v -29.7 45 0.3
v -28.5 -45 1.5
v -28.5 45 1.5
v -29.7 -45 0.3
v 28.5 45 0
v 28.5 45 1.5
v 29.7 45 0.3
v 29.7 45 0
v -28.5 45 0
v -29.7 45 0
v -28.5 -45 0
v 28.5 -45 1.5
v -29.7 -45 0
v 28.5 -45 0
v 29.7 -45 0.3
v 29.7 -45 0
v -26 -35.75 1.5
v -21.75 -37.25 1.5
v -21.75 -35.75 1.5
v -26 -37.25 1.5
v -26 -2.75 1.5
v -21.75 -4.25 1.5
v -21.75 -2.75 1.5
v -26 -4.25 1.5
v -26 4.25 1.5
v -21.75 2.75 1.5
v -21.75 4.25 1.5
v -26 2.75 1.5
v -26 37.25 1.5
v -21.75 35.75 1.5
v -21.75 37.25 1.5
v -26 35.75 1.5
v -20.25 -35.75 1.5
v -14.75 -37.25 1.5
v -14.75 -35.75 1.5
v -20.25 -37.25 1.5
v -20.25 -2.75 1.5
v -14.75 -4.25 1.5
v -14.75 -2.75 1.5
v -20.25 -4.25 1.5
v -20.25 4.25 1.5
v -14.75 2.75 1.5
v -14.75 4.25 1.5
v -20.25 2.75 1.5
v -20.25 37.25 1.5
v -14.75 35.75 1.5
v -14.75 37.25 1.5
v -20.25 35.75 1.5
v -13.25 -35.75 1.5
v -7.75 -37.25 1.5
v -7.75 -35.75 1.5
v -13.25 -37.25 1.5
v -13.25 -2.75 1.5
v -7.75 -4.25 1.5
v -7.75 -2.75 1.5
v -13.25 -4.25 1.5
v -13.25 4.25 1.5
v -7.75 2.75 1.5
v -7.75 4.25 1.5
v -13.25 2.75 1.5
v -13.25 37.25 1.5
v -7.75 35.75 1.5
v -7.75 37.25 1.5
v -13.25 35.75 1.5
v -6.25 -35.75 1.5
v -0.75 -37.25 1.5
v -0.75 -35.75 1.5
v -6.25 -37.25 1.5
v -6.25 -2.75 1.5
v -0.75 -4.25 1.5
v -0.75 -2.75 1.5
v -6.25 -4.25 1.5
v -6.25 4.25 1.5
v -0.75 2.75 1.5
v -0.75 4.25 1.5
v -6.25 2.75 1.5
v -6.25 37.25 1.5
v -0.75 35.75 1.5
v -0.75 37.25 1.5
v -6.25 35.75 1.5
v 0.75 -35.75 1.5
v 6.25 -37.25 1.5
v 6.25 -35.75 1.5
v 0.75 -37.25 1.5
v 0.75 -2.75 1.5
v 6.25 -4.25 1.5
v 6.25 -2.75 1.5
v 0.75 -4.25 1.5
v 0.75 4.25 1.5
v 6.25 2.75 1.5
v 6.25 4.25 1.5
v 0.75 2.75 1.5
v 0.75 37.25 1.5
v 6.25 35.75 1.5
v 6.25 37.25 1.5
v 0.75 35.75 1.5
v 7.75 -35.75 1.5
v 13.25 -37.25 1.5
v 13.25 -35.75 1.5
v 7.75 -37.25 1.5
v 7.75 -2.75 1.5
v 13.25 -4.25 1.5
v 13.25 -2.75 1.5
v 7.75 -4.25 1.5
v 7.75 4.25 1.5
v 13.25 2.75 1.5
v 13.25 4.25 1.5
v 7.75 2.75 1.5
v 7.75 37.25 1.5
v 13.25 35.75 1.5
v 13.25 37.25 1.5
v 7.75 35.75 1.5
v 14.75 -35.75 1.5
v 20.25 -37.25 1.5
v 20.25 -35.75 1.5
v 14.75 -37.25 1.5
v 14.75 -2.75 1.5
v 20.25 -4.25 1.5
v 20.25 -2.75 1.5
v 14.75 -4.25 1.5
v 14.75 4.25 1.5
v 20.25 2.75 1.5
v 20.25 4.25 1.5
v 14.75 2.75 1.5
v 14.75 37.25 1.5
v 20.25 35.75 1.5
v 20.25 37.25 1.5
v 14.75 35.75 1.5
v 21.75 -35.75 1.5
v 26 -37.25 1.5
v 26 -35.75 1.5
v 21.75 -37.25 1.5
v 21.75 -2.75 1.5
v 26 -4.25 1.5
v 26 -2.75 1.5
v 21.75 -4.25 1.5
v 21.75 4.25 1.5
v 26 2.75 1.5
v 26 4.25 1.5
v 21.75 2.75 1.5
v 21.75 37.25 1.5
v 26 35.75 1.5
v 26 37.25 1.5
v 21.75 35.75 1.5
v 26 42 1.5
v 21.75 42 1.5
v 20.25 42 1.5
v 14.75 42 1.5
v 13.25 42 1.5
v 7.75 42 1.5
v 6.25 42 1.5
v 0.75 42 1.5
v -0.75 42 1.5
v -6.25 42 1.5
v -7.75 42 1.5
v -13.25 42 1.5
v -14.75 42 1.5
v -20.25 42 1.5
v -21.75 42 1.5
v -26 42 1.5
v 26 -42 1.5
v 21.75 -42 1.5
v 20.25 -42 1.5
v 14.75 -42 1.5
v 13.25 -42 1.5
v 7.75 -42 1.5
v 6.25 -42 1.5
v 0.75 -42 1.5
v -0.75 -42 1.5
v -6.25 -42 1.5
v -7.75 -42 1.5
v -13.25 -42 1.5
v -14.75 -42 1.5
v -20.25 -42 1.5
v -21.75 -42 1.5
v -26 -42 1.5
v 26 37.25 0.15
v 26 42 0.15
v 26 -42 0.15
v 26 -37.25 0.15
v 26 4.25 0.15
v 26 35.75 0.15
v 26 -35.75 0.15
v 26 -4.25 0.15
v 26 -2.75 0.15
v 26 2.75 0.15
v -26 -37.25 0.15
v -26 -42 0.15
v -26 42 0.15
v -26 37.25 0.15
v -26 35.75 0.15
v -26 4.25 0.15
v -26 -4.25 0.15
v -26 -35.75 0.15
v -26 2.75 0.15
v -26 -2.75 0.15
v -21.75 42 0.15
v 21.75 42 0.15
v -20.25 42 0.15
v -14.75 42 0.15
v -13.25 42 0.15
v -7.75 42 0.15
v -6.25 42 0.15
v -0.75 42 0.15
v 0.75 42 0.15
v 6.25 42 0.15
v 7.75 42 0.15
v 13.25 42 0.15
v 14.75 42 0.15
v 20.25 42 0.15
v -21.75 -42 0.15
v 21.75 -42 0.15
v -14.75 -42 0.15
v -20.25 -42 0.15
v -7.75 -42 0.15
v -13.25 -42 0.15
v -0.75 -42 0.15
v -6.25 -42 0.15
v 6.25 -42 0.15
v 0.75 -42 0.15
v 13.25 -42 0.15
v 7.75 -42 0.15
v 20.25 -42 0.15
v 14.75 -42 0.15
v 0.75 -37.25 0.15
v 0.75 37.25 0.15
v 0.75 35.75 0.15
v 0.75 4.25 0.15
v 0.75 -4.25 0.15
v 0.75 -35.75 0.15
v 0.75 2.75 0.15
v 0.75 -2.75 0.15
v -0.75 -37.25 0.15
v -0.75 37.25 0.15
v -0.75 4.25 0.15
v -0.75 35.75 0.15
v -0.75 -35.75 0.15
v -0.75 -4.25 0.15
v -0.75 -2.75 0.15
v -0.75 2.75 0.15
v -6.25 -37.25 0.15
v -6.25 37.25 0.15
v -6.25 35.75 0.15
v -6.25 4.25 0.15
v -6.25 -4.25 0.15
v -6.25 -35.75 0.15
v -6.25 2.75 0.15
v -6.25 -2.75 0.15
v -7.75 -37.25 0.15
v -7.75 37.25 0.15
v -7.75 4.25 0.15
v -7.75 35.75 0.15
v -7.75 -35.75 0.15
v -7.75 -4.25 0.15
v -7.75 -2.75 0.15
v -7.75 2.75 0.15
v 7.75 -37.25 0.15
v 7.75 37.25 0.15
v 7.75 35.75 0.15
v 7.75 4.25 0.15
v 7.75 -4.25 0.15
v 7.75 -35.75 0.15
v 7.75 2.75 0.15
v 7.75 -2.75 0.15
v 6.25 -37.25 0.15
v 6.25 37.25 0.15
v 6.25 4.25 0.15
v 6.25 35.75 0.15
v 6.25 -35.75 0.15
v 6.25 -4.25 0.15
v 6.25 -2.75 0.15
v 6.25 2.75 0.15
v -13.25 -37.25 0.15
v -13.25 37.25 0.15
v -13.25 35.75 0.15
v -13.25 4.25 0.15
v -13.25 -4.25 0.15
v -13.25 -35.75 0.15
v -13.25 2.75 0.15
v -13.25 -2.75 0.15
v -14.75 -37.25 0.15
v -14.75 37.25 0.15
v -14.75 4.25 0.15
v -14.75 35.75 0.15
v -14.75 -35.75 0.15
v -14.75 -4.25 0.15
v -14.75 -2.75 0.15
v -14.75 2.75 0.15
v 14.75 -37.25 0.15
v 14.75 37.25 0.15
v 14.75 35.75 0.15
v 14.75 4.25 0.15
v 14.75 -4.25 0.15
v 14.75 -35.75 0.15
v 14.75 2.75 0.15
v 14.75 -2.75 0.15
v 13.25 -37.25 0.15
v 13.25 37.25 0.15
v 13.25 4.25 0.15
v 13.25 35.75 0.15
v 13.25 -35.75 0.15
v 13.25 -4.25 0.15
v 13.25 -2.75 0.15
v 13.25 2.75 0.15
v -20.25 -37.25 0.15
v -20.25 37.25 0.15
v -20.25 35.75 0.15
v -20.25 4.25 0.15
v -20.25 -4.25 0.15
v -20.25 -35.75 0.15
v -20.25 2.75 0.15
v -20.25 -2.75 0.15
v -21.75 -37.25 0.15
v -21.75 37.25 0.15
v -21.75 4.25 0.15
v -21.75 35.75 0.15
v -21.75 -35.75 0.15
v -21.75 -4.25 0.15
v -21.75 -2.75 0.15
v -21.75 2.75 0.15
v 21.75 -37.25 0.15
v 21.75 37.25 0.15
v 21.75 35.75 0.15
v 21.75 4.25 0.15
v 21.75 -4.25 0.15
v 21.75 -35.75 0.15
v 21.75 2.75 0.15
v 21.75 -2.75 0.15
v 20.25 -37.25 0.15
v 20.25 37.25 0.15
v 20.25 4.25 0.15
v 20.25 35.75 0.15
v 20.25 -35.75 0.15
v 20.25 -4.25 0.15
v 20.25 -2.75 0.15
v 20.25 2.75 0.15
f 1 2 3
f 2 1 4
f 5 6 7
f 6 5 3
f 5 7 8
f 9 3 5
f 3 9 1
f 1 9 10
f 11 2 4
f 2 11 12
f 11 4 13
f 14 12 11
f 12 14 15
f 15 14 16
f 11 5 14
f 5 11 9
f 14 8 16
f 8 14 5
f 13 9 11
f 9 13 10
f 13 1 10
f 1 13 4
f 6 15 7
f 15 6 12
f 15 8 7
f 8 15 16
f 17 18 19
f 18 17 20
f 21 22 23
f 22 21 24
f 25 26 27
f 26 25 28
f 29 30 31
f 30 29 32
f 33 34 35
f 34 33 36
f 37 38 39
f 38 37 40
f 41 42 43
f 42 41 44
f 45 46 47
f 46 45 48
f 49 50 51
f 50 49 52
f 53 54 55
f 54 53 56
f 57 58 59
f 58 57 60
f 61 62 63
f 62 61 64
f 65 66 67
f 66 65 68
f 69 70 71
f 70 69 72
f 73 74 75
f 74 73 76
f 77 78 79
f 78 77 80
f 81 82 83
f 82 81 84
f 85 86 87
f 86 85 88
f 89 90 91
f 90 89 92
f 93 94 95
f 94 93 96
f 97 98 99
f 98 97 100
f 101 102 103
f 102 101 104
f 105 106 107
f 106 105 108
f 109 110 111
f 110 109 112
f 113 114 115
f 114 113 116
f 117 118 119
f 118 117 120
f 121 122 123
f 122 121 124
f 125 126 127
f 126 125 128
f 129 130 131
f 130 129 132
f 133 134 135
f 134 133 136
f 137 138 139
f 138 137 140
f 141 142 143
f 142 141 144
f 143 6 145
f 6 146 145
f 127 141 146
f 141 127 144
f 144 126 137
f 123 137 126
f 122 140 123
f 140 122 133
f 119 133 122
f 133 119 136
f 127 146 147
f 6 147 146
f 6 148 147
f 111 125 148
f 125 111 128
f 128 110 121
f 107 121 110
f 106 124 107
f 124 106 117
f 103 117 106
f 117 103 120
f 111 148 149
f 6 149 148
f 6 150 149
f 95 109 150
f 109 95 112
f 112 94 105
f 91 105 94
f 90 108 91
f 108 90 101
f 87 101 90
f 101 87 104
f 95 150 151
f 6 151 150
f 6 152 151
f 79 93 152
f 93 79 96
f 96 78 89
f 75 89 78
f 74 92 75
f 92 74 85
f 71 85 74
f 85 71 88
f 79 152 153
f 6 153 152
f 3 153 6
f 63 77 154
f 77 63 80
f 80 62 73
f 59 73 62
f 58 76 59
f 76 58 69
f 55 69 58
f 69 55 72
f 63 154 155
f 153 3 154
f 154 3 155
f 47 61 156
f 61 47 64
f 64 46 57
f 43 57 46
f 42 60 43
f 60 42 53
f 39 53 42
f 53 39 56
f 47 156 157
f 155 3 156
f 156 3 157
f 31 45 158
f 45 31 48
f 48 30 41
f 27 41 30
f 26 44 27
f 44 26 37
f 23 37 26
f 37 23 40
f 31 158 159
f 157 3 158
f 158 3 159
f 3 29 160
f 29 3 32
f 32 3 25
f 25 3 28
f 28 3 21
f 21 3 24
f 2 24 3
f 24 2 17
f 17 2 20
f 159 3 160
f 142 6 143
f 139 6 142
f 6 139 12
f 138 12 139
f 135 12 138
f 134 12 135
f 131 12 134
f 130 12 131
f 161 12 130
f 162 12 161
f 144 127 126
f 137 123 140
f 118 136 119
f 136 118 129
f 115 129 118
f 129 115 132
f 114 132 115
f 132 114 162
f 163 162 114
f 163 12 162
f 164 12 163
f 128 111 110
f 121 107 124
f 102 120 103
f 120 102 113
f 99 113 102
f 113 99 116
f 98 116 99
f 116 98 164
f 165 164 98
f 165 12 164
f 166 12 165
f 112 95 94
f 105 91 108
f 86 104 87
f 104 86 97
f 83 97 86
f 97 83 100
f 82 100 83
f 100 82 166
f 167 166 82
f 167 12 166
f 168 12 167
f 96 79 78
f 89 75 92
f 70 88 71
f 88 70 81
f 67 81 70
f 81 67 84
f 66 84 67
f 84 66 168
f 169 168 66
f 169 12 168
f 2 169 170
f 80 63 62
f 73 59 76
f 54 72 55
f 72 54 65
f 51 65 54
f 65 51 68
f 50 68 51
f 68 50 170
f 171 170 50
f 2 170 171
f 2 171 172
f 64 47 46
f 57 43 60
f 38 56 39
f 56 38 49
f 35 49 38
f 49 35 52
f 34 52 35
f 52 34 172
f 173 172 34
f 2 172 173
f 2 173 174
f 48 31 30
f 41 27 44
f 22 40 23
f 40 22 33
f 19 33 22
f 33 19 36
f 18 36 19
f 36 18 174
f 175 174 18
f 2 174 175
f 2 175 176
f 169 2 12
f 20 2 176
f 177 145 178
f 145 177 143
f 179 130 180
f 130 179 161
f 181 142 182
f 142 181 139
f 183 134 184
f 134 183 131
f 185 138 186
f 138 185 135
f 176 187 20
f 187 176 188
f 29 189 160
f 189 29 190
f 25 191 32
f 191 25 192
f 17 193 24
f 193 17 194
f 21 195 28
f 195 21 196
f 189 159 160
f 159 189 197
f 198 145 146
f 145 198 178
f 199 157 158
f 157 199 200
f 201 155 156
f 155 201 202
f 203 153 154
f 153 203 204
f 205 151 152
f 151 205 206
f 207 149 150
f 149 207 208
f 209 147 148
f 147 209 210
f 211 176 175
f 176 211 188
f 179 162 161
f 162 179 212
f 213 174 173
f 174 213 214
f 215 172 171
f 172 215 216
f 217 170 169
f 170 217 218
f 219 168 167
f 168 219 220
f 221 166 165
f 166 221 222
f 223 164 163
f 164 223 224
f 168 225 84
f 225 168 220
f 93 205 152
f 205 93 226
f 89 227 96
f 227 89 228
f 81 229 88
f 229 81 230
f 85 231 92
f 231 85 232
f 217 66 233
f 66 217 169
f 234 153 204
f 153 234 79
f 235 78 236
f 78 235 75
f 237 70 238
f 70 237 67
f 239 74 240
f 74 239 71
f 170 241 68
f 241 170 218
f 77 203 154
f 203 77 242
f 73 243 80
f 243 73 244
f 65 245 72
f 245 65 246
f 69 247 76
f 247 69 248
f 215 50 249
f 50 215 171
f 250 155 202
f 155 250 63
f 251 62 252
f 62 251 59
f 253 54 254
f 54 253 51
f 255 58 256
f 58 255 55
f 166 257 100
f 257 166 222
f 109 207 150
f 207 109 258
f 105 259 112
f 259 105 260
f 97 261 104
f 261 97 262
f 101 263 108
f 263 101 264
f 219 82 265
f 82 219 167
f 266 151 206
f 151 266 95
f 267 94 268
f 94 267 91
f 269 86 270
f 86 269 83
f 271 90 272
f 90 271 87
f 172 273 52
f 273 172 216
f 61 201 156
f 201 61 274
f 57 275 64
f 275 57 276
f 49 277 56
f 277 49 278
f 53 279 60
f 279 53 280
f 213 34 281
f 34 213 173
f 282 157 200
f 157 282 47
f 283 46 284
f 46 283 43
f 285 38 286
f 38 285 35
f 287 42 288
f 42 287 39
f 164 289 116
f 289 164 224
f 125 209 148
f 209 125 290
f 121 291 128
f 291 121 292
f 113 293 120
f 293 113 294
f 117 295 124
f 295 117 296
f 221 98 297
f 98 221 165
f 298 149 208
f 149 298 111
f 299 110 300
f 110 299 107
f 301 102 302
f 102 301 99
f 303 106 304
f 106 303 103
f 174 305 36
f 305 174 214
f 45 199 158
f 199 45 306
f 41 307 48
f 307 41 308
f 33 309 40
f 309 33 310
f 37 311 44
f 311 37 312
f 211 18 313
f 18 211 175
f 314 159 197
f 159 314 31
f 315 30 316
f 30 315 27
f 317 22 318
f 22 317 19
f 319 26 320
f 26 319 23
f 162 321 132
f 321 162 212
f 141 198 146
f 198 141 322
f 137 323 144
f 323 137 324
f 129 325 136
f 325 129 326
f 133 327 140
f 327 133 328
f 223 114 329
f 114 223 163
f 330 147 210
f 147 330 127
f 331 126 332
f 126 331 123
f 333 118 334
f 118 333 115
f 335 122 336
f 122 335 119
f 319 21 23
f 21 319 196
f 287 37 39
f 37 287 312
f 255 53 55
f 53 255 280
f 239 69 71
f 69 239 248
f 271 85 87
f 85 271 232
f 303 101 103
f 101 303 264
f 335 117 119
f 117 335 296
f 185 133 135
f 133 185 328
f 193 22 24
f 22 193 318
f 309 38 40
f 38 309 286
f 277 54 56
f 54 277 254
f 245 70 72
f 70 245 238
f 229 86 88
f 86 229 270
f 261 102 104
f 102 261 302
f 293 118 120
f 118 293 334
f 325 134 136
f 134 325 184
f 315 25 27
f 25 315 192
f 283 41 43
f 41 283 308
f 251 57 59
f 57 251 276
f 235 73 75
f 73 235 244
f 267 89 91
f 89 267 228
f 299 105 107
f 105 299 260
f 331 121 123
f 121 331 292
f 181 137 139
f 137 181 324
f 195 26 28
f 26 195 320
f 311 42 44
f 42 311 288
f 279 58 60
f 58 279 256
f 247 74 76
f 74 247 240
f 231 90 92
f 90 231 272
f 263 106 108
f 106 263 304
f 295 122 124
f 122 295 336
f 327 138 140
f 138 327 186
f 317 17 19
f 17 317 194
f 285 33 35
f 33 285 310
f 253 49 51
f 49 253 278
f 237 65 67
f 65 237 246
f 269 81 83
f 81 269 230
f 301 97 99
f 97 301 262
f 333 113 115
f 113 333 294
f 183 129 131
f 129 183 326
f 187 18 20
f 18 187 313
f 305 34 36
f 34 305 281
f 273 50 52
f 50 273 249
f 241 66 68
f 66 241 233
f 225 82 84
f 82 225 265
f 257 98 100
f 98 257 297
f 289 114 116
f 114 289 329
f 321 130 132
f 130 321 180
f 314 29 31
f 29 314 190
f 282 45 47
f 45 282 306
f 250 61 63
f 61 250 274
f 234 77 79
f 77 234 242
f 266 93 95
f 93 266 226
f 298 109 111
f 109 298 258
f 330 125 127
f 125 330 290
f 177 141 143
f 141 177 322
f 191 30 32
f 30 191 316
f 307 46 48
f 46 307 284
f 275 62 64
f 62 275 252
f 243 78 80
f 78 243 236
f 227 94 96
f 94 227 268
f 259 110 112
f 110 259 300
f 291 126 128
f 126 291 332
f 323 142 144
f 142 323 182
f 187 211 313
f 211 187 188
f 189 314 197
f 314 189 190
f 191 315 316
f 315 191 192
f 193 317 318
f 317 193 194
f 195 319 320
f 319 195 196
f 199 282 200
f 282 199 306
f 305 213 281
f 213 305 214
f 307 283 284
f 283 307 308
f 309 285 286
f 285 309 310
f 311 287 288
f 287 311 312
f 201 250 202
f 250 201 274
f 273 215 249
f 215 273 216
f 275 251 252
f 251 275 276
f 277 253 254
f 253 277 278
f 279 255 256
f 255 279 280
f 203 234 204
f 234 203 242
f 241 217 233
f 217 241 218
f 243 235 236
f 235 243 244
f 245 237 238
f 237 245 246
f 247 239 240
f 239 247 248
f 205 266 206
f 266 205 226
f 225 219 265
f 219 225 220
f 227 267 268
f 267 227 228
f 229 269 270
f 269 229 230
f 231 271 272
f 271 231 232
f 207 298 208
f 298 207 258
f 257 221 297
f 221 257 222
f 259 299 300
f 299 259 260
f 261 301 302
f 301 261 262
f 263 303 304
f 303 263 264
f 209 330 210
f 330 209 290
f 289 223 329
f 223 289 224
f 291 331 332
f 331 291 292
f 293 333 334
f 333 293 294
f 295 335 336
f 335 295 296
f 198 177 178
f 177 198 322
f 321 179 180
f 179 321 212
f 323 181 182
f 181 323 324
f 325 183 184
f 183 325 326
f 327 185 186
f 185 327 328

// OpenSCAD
W=64;
W2=100;
H=90;
T=1.5;
B=4;
Q=7;
H1=7;
HR=12;

color("white")
backing();
color("brown")
theactualpanel();

module backing() {
    cube_center([W-H1,H,0.15]);
}

module theactualpanel() {
    
    // the pointed edges that go into groove
    for(s=[-1:2:1])
        scale([s,1,1])
        translate([(W-H1)/2,0,])
        difference() {
            rotate([0,45,0])
            cube([1.5*sqrt(2),H,1.5*sqrt(2)],center=true);
            translate([0,0,-1.5])
            cube([3,H+1,3],center=true);
            translate([2.7,0,0])
            cube([3,H+1,3],center=true);
            translate([-2.7,0,0])
            cube([3,H+1,3],center=true);
    }

    intersection() {
        // clips the following to dimensions just in case
        cube_center([W-H1,H,1.5]);
        // of this:
        union() {
            // border
            difference() {
                cube_center([W,H,1.5]);
                translate([0,0,-1])
                cube_center([W-3*B,H-1.5*B,10]);
            }
            
            // vertical lines
            for(n=[0:7:W/2]) {
                for(s=[-1:2:1])
                translate([n*s,0,0])
                cube_center([T,H,1.5]);
            }
    
            // horizontal lines
            for(y=[-7/2,7/2,-H/2+7+T,H/2-7-T])
            translate([0,y,0])
            cube_center([W,T,1.5]);    
        }
    }
}

module cube_center(dims,r=0) {
    if(r==0) {
        translate([-dims[0]/2, -dims[1]/2, 0])
        cube(dims);
    } else {
        
        minkowski() {
            translate([-dims[0]/2+r, -dims[1]/2+r, 0])
            cube([dims[0]-2*r,dims[1]-2*r,dims[2]]);
            cylinder(r=r,h=0.00001,$fn=32);
        }
    }
}
